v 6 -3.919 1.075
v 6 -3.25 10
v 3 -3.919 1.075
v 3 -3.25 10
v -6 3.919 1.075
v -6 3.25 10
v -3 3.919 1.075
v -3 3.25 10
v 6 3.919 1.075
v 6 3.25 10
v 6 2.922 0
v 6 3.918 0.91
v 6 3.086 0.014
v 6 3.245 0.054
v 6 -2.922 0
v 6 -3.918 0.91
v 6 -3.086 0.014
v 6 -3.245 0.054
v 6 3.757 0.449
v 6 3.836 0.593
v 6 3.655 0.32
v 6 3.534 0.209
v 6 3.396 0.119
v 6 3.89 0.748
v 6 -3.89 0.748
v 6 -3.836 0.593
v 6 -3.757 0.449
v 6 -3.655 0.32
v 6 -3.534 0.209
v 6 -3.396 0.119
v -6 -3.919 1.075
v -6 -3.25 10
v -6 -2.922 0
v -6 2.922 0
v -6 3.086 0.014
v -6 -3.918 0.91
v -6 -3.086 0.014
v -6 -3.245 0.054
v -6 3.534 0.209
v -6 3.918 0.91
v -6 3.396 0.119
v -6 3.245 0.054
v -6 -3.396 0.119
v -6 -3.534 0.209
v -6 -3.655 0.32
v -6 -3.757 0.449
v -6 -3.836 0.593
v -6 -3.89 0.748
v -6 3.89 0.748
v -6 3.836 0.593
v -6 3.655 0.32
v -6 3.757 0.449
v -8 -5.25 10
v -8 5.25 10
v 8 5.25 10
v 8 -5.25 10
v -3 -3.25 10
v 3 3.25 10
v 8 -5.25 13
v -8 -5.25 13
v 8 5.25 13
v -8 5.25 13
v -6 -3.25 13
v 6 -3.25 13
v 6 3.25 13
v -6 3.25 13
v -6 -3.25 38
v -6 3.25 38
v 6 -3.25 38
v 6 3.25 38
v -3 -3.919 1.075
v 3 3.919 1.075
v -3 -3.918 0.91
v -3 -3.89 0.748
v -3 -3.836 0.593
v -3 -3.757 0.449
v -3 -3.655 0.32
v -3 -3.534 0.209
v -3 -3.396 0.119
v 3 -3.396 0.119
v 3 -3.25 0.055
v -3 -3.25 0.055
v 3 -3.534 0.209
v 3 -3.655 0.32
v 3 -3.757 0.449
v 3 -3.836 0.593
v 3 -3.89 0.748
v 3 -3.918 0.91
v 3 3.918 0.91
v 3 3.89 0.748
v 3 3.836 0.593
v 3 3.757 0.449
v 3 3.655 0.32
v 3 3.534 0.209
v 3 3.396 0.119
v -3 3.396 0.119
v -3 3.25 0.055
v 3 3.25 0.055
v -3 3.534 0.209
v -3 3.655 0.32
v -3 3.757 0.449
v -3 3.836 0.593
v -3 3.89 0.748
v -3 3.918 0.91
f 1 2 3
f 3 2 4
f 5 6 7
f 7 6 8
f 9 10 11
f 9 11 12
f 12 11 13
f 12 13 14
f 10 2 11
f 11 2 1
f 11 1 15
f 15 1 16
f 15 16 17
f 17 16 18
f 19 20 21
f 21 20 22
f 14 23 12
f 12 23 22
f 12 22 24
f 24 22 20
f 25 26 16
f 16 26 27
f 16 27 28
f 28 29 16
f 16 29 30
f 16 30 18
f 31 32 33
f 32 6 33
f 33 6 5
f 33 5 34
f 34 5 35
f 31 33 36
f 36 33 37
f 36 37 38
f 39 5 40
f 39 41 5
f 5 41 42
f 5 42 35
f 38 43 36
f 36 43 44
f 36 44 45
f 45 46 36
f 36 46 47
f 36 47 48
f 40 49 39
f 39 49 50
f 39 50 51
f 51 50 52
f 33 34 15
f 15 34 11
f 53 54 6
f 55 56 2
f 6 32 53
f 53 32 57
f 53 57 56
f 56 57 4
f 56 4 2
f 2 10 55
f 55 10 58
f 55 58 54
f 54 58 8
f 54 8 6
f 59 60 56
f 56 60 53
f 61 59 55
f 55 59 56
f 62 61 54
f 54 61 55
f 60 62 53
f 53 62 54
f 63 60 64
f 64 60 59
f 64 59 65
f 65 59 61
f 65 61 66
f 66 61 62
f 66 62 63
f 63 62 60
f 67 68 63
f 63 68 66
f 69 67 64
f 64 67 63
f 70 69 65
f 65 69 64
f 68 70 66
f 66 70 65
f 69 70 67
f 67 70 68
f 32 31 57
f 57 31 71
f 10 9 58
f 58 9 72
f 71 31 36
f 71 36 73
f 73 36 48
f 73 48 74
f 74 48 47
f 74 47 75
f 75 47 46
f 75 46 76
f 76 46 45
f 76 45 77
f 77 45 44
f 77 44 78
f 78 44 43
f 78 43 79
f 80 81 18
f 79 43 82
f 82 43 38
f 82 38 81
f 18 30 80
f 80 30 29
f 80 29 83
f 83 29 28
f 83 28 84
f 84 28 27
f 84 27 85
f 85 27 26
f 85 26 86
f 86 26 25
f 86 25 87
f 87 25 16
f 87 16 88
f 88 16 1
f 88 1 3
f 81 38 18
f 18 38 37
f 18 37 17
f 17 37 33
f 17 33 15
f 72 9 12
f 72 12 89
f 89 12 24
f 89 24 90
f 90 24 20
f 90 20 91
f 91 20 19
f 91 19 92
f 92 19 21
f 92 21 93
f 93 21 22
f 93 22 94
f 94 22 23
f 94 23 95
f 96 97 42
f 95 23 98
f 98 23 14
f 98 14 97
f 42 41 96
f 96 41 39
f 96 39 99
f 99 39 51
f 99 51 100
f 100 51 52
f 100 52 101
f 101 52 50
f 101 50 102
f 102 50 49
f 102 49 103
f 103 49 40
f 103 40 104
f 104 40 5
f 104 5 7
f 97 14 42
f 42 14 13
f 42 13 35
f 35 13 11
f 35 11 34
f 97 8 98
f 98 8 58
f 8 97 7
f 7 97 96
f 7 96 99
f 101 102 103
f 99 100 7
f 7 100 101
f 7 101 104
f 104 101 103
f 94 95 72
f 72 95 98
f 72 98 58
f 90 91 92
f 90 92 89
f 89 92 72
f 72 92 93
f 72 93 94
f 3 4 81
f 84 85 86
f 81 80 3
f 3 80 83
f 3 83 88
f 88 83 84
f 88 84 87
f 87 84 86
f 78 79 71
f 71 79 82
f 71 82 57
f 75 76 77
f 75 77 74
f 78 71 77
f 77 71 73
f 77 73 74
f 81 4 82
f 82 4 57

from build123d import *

# Parameters (mm, degrees)
SKETCH1_W           = 12
SKETCH1_H           = 6.5
BOSS_EXTRUDE1_DEPTH = 10
SKETCH2_W           = 16
SKETCH2_H           = 10.5
BOSS_EXTRUDE2_DEPTH = 3
SKETCH3_W           = 12
SKETCH3_H           = 6.5
BOSS_EXTRUDE3_DEPTH = 25
BOSS_EXTRUDE4_DEPTH = 12
FILLET1_R           = 1
CUT_EXTRUDE1_REACH  = 41.186
SKETCH5_W           = 6
SKETCH5_H           = 0.672191444


with BuildPart() as part:
    # Sketch1 → Boss-Extrude1 (new body)
    with BuildSketch(Plane.XY):
        Rectangle(SKETCH1_W, SKETCH1_H)
    extrude(amount=BOSS_EXTRUDE1_DEPTH)

    # Sketch2 → Boss-Extrude2 (add)
    with BuildSketch(Plane.XY.offset(10)):
        Rectangle(SKETCH2_W, SKETCH2_H)
    extrude(amount=BOSS_EXTRUDE2_DEPTH)

    # Sketch3 → Boss-Extrude3 (add)
    with BuildSketch(Plane.XY.offset(13)):
        Rectangle(SKETCH3_W, SKETCH3_H)
    extrude(amount=BOSS_EXTRUDE3_DEPTH)

    # Sketch4 → Boss-Extrude4 (add)
    with BuildSketch(Plane(origin=(6, 0, 0), x_dir=(0, 0, -1), z_dir=(1, 0, 0))):
        Polygon((-10, 3.25), (0, 4), (0, 3.25), align=None)
        Polygon((-10, -3.25), (0, -4), (0, -3.25), align=None)
    extrude(amount=-BOSS_EXTRUDE4_DEPTH)

    # Fillet1
    fillet1_edges = [part.edges().sort_by_distance(p)[0] for p in [
        (0, -4, 0),
        (0, 4, 0),
    ]]
    fillet(fillet1_edges, radius=FILLET1_R)

    # Sketch5 → Cut-Extrude1 (cut, up to next)
    with BuildSketch(Plane(origin=(0, 0, 0), x_dir=(-1, 0, 0), z_dir=(0, 0, -1)), mode=Mode.PRIVATE) as cut_extrude1_sk1:
        with Locations((0, 3.586095722)):
            Rectangle(SKETCH5_W, SKETCH5_H)
    cut_extrude1_tool1 = extrude(cut_extrude1_sk1.sketch, amount=-CUT_EXTRUDE1_REACH, mode=Mode.PRIVATE) & part.part
    # Sketch5 → Cut-Extrude1 (cut, up to next)
    with BuildSketch(Plane(origin=(0, 0, 0), x_dir=(-1, 0, 0), z_dir=(0, 0, -1)), mode=Mode.PRIVATE) as cut_extrude1_sk2:
        with Locations((0, -3.586095722)):
            Rectangle(SKETCH5_W, SKETCH5_H)
    cut_extrude1_tool2 = extrude(cut_extrude1_sk2.sketch, amount=-CUT_EXTRUDE1_REACH, mode=Mode.PRIVATE) & part.part
    add(cut_extrude1_tool1.solids().sort_by_distance((0, 3.586096, 0))[0], mode=Mode.SUBTRACT)
    add(cut_extrude1_tool2.solids().sort_by_distance((0, -3.586096, 0))[0], mode=Mode.SUBTRACT)


solid = part.part
